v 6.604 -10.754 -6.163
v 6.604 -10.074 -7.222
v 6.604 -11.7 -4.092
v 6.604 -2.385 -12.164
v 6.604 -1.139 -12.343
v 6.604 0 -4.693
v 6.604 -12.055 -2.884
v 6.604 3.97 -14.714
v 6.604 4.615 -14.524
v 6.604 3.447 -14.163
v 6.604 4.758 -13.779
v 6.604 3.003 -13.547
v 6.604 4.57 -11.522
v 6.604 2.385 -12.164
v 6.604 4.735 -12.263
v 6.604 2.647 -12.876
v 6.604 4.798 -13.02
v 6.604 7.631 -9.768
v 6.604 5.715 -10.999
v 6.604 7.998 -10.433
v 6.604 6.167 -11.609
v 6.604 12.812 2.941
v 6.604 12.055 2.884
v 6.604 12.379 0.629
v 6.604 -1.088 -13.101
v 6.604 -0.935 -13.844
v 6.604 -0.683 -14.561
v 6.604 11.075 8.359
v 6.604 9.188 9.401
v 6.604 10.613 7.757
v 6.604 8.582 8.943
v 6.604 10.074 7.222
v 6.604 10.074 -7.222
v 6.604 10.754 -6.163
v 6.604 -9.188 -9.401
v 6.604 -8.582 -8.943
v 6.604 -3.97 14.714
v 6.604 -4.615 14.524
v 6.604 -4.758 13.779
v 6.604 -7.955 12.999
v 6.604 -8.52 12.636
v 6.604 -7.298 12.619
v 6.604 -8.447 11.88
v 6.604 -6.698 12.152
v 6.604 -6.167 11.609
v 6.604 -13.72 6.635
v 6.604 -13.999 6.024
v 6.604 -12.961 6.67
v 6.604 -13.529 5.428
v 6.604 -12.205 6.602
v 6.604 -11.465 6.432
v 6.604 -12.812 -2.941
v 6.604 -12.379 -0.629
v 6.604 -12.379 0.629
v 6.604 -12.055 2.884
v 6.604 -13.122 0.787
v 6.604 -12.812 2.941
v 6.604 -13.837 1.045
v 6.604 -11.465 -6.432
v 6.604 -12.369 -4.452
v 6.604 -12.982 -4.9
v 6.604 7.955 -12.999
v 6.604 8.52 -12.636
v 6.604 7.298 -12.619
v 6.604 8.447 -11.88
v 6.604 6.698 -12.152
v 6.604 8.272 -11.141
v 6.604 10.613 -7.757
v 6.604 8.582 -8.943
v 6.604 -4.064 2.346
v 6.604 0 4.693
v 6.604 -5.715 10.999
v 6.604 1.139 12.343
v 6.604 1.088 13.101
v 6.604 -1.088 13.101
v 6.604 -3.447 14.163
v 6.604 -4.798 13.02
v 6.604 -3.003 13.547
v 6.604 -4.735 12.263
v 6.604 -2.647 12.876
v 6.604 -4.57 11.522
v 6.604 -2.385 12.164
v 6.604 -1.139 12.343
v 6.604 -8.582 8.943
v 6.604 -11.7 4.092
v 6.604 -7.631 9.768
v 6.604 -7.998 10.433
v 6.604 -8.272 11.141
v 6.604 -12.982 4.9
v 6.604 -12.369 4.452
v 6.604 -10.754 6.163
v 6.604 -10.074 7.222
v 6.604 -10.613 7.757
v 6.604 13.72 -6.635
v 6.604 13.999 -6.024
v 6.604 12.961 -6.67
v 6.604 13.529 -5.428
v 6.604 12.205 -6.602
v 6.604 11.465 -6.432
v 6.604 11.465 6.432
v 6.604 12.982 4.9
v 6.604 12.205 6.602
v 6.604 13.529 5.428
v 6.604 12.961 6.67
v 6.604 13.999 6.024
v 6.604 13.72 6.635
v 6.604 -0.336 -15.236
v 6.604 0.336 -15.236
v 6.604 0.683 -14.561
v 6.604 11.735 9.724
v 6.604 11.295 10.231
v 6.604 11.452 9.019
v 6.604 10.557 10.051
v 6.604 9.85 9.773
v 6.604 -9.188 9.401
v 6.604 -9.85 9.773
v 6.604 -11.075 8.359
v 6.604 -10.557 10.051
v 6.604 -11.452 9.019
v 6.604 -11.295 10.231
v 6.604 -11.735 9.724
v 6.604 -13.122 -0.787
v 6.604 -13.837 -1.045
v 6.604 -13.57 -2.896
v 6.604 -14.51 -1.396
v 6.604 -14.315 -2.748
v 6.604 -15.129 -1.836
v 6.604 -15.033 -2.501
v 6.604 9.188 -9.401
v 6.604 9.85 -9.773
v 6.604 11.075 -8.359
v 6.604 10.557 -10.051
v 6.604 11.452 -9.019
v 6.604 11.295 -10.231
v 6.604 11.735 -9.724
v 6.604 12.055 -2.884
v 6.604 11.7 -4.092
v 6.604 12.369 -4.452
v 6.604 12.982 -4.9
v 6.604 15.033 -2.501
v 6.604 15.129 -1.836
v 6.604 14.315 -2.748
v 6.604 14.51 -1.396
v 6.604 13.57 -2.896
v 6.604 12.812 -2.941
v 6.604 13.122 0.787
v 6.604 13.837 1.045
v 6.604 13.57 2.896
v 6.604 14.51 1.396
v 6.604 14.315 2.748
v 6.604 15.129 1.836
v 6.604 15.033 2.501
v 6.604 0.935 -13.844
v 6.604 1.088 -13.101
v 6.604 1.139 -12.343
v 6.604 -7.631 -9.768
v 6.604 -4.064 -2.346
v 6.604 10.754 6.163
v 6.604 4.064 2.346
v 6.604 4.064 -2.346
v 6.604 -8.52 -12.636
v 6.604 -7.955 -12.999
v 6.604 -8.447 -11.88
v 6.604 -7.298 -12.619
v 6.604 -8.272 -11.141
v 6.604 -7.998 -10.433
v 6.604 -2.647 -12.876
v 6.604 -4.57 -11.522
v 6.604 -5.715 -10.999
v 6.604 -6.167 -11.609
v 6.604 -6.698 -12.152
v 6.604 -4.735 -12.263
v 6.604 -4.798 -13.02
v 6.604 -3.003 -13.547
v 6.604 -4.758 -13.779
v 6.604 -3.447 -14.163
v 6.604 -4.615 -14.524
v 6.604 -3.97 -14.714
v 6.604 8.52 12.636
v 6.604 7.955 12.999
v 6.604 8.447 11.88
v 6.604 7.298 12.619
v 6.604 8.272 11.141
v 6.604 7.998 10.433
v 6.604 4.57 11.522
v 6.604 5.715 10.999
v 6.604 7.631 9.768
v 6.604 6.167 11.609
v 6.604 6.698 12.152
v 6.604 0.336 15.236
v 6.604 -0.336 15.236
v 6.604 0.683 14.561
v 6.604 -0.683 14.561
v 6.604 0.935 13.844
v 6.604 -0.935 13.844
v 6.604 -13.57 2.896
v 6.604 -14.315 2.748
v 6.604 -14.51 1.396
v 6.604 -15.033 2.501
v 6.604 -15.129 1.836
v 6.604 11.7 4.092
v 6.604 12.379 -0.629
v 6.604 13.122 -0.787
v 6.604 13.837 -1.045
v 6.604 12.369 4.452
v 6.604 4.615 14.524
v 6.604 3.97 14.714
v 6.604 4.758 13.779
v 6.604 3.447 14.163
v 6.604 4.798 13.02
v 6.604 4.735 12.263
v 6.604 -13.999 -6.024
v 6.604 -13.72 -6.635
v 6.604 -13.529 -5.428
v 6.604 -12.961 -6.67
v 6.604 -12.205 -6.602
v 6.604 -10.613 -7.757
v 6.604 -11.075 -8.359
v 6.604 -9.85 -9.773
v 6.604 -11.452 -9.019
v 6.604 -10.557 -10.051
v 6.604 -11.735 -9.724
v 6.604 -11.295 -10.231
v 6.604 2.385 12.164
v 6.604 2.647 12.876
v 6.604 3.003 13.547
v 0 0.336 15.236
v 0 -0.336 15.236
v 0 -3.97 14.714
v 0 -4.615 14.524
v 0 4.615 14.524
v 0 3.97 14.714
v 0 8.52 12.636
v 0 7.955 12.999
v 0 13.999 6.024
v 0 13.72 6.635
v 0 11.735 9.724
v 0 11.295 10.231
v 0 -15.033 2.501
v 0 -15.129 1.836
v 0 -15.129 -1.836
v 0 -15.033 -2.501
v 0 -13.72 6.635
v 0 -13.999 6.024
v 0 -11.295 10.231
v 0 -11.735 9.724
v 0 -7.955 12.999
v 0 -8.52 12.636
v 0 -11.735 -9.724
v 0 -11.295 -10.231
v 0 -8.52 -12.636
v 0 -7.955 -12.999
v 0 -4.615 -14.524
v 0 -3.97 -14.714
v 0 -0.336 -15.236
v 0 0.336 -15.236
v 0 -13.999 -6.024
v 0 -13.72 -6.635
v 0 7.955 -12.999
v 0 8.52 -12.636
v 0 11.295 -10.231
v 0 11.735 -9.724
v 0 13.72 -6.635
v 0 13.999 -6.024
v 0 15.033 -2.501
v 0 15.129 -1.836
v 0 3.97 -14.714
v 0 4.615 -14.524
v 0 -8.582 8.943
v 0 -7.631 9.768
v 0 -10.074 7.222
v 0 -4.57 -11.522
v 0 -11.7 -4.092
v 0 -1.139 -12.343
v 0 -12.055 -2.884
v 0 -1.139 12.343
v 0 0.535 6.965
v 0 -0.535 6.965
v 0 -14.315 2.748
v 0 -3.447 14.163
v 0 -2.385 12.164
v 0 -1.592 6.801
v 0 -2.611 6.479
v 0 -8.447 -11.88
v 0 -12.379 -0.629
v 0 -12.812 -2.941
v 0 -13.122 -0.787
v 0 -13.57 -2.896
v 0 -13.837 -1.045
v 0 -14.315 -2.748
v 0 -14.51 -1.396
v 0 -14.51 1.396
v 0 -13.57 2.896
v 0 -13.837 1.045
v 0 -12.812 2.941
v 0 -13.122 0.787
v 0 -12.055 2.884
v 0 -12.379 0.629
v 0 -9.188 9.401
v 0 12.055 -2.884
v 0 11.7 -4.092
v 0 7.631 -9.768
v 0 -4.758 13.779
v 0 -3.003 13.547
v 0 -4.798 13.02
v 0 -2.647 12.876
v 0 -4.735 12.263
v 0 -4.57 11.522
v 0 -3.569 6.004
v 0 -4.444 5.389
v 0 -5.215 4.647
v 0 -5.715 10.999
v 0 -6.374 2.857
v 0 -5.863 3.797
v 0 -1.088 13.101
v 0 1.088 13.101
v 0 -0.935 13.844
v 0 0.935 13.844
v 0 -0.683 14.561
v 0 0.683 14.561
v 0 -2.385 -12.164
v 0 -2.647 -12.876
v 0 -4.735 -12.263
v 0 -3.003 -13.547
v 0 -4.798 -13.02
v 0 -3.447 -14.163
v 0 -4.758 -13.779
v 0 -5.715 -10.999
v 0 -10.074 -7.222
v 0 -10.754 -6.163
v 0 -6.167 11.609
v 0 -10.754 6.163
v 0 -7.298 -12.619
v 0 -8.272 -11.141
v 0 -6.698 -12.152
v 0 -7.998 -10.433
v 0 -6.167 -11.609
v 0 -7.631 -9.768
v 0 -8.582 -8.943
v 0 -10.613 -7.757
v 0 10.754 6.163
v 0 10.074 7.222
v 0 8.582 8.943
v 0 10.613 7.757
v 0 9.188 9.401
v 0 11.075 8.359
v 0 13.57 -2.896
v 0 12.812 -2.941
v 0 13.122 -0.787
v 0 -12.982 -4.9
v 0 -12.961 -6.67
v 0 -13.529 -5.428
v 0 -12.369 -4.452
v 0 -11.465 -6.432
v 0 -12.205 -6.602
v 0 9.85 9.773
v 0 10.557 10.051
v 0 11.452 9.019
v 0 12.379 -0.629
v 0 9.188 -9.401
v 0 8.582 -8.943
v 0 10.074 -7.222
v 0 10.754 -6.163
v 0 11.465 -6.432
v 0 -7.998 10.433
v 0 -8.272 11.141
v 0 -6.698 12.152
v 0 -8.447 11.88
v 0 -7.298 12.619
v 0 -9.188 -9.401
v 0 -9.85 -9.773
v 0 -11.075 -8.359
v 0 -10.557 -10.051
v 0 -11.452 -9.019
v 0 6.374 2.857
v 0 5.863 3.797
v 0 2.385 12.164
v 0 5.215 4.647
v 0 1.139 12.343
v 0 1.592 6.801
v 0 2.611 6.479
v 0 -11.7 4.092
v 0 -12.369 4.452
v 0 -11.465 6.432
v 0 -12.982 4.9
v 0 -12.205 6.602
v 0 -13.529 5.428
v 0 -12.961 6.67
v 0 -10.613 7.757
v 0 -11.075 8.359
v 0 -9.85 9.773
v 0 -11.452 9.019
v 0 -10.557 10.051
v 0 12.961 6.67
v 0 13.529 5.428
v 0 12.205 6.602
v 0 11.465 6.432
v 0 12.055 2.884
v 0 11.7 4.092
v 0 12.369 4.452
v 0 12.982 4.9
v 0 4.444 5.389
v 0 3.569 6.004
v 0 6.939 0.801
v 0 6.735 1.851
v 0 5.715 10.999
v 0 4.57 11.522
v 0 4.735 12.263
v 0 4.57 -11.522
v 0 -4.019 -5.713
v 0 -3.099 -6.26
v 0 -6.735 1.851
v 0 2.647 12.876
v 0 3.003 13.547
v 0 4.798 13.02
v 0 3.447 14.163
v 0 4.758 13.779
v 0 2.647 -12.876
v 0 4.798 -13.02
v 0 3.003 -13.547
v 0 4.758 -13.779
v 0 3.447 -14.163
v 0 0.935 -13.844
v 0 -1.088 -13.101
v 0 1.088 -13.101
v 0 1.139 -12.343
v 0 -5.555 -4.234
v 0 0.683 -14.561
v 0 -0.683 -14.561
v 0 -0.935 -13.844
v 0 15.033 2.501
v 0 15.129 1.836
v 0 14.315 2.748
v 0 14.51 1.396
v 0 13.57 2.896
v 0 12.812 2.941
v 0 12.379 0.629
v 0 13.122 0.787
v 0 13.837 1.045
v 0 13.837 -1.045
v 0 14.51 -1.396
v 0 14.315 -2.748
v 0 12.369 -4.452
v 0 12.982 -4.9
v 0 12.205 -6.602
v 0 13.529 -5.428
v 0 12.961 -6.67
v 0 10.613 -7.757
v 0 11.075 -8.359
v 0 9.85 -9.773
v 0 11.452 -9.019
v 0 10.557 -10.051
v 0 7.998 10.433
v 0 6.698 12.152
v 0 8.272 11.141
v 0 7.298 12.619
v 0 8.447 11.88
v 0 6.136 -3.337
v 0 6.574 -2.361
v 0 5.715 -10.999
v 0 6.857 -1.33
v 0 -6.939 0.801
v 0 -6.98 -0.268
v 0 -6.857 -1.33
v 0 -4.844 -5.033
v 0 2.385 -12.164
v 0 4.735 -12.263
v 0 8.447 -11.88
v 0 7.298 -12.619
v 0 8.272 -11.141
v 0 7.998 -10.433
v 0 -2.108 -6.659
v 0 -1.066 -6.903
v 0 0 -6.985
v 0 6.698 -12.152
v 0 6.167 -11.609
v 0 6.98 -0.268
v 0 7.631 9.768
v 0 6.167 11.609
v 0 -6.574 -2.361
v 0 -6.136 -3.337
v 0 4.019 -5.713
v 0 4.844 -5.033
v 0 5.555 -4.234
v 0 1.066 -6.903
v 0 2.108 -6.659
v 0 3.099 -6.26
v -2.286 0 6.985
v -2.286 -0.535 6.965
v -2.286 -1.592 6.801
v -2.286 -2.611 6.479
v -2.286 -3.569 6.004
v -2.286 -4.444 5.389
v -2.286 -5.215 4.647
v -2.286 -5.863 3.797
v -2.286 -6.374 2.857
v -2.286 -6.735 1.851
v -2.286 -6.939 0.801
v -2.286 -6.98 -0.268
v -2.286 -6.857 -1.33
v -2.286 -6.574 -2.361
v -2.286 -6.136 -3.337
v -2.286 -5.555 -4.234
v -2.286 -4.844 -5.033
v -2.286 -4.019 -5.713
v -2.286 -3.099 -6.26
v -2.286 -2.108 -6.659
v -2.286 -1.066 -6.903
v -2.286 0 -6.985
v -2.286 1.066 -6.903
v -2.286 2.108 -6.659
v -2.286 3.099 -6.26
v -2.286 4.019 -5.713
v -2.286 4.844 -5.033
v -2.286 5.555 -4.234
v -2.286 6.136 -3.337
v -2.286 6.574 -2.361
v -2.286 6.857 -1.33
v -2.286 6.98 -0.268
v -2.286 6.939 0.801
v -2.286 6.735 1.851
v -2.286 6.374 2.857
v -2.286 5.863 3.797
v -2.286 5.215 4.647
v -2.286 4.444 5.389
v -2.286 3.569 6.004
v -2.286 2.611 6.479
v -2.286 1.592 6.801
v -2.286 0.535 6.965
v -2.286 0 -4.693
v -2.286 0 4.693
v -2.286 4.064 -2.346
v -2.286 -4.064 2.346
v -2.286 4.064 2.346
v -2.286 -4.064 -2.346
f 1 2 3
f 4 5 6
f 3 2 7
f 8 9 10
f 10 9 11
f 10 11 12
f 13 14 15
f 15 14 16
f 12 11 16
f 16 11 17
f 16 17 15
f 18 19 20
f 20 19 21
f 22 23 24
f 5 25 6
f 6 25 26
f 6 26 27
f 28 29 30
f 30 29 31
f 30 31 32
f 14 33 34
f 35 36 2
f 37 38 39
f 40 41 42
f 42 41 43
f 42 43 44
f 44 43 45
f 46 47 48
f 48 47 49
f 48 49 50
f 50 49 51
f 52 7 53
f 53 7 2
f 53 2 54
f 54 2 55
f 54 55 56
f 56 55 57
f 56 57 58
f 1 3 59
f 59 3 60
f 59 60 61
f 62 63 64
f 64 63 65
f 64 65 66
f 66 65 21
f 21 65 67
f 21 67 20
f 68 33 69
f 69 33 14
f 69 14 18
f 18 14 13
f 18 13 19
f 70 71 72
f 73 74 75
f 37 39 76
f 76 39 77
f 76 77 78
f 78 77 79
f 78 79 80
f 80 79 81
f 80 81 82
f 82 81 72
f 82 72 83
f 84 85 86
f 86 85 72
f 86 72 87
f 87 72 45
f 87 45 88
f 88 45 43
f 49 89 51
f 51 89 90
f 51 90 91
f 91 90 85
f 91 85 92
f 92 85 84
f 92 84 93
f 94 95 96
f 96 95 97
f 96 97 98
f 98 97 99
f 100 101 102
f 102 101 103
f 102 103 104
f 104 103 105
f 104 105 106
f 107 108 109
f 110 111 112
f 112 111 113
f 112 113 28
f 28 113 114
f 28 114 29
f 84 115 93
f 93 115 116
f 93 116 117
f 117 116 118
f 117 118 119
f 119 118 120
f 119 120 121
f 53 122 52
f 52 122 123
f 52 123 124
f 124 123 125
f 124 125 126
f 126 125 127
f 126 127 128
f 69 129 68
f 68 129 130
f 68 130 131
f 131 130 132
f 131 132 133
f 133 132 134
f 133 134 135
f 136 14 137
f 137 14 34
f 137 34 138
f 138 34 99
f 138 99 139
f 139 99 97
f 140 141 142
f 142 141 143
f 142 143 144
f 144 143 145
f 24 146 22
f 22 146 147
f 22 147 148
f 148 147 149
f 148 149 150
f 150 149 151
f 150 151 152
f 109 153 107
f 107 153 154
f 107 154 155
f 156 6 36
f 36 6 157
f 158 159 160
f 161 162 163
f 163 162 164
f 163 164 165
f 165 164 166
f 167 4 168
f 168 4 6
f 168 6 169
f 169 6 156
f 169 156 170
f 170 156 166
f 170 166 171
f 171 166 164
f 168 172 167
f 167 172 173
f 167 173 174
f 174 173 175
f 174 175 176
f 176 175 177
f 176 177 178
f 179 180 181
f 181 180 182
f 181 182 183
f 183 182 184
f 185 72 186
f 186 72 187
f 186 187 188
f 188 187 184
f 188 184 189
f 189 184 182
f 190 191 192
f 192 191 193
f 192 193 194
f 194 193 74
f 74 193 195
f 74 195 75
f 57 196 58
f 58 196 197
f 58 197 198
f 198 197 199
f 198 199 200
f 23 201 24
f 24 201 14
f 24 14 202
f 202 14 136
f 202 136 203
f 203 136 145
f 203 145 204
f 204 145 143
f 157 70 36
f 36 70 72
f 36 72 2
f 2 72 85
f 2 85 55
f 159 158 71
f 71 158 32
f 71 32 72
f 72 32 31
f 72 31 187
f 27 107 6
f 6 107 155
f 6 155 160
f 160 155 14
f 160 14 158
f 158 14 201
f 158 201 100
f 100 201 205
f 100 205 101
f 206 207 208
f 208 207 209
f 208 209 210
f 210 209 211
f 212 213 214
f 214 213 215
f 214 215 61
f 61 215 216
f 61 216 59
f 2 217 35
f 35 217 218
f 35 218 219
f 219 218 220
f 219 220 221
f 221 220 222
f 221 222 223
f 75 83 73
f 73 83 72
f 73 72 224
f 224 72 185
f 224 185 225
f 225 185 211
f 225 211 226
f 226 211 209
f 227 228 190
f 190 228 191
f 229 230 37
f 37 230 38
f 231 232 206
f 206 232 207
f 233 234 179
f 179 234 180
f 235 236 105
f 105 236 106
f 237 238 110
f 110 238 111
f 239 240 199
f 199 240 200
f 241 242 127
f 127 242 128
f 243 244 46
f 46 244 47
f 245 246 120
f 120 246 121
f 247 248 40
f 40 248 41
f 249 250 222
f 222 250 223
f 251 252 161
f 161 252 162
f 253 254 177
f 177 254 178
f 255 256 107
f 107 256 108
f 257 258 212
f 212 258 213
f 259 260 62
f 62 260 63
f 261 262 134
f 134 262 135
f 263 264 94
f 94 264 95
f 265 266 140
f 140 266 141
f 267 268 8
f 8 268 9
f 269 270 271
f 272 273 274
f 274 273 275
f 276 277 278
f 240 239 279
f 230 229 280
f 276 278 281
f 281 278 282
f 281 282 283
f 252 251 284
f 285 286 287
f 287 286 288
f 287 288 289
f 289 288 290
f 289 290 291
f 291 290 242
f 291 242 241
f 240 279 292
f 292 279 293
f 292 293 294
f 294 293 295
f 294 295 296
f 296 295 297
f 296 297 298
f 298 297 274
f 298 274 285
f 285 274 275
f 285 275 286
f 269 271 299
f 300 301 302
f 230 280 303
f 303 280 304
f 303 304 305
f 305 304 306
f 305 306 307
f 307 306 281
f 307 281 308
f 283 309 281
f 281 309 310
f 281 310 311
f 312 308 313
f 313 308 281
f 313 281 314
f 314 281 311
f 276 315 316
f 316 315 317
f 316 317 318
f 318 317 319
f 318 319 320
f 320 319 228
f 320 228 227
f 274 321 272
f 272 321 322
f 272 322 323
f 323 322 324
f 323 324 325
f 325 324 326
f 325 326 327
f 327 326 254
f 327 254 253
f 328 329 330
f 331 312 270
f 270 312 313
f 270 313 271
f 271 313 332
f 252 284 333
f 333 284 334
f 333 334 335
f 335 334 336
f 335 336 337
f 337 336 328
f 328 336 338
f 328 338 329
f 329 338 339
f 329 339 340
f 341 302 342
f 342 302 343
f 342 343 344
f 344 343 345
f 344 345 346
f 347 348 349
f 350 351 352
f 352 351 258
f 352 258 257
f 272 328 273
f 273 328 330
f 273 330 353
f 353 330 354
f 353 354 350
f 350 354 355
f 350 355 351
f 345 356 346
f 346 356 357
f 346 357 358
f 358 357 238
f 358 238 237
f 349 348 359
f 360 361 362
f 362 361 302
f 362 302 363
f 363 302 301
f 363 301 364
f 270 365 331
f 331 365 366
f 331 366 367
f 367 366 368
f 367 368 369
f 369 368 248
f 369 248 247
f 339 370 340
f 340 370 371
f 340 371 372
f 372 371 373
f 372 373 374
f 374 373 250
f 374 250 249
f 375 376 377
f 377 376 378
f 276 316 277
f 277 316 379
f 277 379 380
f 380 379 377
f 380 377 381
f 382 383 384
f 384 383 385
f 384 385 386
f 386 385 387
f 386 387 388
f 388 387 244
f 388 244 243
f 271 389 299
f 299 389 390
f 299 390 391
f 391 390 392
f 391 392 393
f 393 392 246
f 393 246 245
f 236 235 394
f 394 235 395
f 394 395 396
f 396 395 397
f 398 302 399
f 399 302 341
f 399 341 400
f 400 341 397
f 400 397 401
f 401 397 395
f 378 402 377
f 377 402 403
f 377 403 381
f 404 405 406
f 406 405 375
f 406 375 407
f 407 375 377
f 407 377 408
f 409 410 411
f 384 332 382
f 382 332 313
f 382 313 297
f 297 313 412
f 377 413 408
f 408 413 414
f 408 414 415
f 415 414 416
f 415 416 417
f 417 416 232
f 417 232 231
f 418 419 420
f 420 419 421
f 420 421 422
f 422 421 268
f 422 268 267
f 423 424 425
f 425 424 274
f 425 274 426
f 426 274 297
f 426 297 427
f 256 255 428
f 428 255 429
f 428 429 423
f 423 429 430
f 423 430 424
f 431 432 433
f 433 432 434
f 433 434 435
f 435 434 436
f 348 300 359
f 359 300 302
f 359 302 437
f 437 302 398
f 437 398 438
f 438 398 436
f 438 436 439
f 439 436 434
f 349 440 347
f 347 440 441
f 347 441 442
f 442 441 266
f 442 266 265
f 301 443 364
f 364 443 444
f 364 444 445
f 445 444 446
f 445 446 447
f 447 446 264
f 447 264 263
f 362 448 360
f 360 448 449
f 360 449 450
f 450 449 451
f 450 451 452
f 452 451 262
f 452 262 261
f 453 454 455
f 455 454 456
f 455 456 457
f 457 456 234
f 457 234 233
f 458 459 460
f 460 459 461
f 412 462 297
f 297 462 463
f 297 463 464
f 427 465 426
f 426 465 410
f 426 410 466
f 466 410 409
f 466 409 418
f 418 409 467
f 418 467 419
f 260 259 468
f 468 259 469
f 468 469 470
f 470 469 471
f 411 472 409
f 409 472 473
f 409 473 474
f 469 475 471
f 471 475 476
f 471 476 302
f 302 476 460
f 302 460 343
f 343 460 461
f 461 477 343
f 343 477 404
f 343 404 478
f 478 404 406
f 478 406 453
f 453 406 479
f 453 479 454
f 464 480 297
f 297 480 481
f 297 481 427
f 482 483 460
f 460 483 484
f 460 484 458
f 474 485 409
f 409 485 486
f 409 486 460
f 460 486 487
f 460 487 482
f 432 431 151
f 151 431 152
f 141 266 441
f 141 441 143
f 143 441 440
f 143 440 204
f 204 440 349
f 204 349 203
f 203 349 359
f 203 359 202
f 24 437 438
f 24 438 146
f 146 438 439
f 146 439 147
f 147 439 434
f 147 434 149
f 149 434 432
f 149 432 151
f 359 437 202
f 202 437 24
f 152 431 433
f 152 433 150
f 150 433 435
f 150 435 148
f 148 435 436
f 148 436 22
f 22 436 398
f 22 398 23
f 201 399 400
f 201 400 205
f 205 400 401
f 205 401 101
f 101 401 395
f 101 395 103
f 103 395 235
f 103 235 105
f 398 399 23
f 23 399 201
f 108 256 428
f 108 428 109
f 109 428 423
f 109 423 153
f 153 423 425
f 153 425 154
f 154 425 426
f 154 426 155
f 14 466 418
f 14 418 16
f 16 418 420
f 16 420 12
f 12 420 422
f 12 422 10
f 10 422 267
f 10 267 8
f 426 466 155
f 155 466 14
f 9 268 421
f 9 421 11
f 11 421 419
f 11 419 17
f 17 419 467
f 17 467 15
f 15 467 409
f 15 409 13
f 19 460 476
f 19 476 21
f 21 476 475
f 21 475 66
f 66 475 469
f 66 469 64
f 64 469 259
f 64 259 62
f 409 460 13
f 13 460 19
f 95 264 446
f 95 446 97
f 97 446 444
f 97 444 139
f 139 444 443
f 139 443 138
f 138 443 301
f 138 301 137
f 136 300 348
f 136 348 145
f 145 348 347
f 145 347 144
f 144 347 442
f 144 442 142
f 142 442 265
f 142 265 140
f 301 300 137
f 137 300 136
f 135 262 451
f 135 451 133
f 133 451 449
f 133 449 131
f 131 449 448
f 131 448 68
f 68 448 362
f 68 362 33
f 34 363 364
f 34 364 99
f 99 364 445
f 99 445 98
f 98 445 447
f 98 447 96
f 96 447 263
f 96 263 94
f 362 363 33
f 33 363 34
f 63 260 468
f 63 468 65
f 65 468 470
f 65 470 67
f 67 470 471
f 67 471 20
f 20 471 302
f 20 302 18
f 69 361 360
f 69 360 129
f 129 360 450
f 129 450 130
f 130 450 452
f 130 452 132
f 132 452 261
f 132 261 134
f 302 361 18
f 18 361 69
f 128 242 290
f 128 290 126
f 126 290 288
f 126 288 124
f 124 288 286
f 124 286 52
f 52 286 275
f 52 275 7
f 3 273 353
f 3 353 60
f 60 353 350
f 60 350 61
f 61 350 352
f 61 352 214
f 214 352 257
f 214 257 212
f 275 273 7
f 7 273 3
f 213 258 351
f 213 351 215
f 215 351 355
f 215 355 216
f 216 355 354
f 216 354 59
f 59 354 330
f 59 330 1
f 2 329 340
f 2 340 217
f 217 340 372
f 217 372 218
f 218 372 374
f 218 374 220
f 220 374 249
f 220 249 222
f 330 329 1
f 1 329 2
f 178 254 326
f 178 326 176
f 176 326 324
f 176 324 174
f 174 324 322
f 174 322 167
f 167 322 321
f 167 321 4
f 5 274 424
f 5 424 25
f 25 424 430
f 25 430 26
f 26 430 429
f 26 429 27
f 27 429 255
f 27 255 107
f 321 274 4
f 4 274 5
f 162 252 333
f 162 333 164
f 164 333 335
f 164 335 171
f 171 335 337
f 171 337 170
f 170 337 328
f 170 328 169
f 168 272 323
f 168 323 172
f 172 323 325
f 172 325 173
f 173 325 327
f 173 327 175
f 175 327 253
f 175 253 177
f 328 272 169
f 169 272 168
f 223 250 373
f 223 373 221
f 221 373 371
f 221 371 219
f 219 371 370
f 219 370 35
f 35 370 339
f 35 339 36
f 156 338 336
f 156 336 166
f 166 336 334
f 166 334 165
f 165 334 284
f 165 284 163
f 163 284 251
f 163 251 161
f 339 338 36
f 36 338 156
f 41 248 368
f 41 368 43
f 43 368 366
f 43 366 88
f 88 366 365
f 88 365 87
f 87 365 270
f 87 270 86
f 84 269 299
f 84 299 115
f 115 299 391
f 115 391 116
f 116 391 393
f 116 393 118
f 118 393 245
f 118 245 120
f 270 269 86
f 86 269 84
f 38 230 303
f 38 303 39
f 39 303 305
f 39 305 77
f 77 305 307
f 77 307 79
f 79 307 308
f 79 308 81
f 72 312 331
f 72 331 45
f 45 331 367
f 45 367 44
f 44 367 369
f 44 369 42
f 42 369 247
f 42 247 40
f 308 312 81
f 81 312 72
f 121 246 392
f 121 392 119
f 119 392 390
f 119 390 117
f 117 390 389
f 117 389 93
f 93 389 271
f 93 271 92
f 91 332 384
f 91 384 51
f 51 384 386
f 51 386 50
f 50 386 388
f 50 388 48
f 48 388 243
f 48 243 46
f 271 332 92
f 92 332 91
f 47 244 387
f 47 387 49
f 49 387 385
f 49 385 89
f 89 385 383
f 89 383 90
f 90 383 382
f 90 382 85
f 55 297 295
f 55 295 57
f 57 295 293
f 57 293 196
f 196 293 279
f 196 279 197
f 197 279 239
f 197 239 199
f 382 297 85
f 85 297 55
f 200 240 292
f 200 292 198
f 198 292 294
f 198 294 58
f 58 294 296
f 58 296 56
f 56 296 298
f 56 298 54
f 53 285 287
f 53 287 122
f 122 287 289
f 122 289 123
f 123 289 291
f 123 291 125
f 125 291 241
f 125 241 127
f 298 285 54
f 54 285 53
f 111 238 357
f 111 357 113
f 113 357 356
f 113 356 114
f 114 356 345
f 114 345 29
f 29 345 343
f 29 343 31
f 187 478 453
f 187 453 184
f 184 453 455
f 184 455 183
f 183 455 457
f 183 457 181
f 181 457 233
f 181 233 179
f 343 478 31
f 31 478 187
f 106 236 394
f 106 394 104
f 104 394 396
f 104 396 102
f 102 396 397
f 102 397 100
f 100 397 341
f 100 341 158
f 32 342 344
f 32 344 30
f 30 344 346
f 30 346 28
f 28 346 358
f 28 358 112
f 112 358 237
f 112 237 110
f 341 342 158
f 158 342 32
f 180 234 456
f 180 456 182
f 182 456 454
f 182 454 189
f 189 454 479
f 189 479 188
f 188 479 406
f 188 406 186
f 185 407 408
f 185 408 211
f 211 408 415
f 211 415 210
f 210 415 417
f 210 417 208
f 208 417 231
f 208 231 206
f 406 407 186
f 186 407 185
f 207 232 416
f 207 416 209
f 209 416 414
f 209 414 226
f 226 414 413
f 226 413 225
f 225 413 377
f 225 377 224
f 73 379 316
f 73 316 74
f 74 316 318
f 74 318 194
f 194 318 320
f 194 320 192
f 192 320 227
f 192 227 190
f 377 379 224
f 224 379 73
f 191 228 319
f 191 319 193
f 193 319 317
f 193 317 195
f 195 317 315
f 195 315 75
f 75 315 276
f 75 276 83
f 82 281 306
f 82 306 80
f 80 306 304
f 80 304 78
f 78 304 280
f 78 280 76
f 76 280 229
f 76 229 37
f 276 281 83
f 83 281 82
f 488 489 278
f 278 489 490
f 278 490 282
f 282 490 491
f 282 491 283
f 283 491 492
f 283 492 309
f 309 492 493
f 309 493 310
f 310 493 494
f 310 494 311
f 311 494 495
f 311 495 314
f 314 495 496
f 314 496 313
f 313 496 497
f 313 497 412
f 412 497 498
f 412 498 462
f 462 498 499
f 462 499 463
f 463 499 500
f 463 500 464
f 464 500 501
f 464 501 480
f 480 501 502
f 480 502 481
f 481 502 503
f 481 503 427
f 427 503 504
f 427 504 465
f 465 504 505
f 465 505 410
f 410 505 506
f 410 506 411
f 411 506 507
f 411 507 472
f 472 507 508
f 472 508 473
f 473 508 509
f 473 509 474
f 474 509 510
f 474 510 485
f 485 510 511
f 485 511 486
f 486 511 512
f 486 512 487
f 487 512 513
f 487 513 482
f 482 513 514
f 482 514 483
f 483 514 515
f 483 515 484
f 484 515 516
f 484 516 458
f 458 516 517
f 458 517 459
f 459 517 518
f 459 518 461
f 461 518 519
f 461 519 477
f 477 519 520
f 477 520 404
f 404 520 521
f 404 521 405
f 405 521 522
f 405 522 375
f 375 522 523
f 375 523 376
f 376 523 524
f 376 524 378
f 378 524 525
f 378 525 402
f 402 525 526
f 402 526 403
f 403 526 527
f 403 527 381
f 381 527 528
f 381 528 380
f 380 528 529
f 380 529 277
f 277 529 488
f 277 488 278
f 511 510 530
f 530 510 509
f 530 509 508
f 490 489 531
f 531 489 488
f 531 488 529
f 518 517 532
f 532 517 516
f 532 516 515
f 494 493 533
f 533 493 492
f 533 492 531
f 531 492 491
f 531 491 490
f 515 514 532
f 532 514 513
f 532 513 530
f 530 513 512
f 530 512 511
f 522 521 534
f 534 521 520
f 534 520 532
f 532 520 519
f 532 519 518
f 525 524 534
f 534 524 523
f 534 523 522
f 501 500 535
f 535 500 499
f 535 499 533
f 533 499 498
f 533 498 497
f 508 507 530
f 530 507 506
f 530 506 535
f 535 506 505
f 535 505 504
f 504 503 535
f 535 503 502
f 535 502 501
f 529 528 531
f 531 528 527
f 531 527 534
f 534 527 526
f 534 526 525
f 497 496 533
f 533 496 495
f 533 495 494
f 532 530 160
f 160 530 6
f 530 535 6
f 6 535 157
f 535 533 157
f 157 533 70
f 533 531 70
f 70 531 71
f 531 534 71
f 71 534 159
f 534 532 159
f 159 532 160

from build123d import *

# Parameters (mm, degrees)
BASPROSKE_W         = 6.604
BASPROSKE_H         = 15.24
TOOTHCUT_DEPTH      = 23.541695056
TEETHCUTS_COUNT     = 22
TEETHCUTS_ANGLE     = 343.636363636
BORSKE_R            = 0.499999
BORE_DEPTH          = 50.8000508
SKETCH1_R           = 6.985
BOSS_EXTRUDE1_DEPTH = 2.286
CUT_EXTRUDE1_DEPTH  = 24.241702632


with BuildPart() as part:
    # BasProSke → Base-Revolve (revolve)
    with BuildSketch(Plane(origin=(0, 0, 0), x_dir=(1, 0, 0), z_dir=(0, 1, 0)), mode=Mode.PRIVATE) as base_revolve_sk:
        with Locations((3.302, 7.62)):
            Rectangle(BASPROSKE_W, BASPROSKE_H)
    revolve(base_revolve_sk.sketch.rotate(Axis((-10, 0, 0), (1, 0, 0)), 180), axis=Axis((-10, 0, 0), (1, 0, 0)))

    # TooCutSke → ToothCut (cut, through all)
    with BuildSketch(Plane(origin=(0, 0, 0), x_dir=(0, 0, -1), z_dir=(1, 0, 0))):
        with BuildLine():
            ThreePointArc((0.629474743, 12.379206137), (0, 12.3952), (-0.629474743, 12.379206137))
            ThreePointArc((-0.629474743, 12.379206137), (-1.05059125, 13.850443254), (-1.855031489, 15.152270303))
            ThreePointArc((-1.855031489, 15.152270303), (0, 15.2654), (1.855031489, 15.152270303))
            ThreePointArc((1.855031489, 15.152270303), (1.05059125, 13.850443254), (0.629474743, 12.379206137))
        make_face()
    toothcut = extrude(amount=TOOTHCUT_DEPTH, mode=Mode.SUBTRACT)

    # TeethCuts: ToothCut ×22 about axis
    teethcuts_axis = Axis((-10, 0, 0), (1, 0, 0))
    for i in range(1, TEETHCUTS_COUNT):
        add(toothcut.rotate(teethcuts_axis, i * TEETHCUTS_ANGLE / (TEETHCUTS_COUNT - 1)), mode=Mode.SUBTRACT)

    # BorSke → Bore (cut, symmetric)
    with BuildSketch(Plane(origin=(0, 0, 0), x_dir=(0, 0, -1), z_dir=(1, 0, 0))):
        with Locations(Location((0, 0, 0), (0, 0, 180))):
            Circle(BORSKE_R)
    extrude(amount=BORE_DEPTH, both=True, mode=Mode.SUBTRACT)

    # Sketch1 → Boss-Extrude1 (add)
    with BuildSketch(Plane.ZY):
        with Locations(Location((0, 0, 0), (0, 0, 180))):
            Circle(SKETCH1_R)
    extrude(amount=BOSS_EXTRUDE1_DEPTH)

    # Sketch2 → Cut-Extrude1 (cut, through all)
    with BuildSketch(Plane(origin=(6.604, 0, 0), x_dir=(0, 0, -1), z_dir=(1, 0, 0))):
        Polygon((2.346351494, 4.064), (-2.346351494, 4.064), (-4.692702988, 0), (-2.346351494, -4.064), (2.346351494, -4.064), (4.692702988, 0), align=None)
    extrude(amount=-CUT_EXTRUDE1_DEPTH, mode=Mode.SUBTRACT)


solid = part.part
